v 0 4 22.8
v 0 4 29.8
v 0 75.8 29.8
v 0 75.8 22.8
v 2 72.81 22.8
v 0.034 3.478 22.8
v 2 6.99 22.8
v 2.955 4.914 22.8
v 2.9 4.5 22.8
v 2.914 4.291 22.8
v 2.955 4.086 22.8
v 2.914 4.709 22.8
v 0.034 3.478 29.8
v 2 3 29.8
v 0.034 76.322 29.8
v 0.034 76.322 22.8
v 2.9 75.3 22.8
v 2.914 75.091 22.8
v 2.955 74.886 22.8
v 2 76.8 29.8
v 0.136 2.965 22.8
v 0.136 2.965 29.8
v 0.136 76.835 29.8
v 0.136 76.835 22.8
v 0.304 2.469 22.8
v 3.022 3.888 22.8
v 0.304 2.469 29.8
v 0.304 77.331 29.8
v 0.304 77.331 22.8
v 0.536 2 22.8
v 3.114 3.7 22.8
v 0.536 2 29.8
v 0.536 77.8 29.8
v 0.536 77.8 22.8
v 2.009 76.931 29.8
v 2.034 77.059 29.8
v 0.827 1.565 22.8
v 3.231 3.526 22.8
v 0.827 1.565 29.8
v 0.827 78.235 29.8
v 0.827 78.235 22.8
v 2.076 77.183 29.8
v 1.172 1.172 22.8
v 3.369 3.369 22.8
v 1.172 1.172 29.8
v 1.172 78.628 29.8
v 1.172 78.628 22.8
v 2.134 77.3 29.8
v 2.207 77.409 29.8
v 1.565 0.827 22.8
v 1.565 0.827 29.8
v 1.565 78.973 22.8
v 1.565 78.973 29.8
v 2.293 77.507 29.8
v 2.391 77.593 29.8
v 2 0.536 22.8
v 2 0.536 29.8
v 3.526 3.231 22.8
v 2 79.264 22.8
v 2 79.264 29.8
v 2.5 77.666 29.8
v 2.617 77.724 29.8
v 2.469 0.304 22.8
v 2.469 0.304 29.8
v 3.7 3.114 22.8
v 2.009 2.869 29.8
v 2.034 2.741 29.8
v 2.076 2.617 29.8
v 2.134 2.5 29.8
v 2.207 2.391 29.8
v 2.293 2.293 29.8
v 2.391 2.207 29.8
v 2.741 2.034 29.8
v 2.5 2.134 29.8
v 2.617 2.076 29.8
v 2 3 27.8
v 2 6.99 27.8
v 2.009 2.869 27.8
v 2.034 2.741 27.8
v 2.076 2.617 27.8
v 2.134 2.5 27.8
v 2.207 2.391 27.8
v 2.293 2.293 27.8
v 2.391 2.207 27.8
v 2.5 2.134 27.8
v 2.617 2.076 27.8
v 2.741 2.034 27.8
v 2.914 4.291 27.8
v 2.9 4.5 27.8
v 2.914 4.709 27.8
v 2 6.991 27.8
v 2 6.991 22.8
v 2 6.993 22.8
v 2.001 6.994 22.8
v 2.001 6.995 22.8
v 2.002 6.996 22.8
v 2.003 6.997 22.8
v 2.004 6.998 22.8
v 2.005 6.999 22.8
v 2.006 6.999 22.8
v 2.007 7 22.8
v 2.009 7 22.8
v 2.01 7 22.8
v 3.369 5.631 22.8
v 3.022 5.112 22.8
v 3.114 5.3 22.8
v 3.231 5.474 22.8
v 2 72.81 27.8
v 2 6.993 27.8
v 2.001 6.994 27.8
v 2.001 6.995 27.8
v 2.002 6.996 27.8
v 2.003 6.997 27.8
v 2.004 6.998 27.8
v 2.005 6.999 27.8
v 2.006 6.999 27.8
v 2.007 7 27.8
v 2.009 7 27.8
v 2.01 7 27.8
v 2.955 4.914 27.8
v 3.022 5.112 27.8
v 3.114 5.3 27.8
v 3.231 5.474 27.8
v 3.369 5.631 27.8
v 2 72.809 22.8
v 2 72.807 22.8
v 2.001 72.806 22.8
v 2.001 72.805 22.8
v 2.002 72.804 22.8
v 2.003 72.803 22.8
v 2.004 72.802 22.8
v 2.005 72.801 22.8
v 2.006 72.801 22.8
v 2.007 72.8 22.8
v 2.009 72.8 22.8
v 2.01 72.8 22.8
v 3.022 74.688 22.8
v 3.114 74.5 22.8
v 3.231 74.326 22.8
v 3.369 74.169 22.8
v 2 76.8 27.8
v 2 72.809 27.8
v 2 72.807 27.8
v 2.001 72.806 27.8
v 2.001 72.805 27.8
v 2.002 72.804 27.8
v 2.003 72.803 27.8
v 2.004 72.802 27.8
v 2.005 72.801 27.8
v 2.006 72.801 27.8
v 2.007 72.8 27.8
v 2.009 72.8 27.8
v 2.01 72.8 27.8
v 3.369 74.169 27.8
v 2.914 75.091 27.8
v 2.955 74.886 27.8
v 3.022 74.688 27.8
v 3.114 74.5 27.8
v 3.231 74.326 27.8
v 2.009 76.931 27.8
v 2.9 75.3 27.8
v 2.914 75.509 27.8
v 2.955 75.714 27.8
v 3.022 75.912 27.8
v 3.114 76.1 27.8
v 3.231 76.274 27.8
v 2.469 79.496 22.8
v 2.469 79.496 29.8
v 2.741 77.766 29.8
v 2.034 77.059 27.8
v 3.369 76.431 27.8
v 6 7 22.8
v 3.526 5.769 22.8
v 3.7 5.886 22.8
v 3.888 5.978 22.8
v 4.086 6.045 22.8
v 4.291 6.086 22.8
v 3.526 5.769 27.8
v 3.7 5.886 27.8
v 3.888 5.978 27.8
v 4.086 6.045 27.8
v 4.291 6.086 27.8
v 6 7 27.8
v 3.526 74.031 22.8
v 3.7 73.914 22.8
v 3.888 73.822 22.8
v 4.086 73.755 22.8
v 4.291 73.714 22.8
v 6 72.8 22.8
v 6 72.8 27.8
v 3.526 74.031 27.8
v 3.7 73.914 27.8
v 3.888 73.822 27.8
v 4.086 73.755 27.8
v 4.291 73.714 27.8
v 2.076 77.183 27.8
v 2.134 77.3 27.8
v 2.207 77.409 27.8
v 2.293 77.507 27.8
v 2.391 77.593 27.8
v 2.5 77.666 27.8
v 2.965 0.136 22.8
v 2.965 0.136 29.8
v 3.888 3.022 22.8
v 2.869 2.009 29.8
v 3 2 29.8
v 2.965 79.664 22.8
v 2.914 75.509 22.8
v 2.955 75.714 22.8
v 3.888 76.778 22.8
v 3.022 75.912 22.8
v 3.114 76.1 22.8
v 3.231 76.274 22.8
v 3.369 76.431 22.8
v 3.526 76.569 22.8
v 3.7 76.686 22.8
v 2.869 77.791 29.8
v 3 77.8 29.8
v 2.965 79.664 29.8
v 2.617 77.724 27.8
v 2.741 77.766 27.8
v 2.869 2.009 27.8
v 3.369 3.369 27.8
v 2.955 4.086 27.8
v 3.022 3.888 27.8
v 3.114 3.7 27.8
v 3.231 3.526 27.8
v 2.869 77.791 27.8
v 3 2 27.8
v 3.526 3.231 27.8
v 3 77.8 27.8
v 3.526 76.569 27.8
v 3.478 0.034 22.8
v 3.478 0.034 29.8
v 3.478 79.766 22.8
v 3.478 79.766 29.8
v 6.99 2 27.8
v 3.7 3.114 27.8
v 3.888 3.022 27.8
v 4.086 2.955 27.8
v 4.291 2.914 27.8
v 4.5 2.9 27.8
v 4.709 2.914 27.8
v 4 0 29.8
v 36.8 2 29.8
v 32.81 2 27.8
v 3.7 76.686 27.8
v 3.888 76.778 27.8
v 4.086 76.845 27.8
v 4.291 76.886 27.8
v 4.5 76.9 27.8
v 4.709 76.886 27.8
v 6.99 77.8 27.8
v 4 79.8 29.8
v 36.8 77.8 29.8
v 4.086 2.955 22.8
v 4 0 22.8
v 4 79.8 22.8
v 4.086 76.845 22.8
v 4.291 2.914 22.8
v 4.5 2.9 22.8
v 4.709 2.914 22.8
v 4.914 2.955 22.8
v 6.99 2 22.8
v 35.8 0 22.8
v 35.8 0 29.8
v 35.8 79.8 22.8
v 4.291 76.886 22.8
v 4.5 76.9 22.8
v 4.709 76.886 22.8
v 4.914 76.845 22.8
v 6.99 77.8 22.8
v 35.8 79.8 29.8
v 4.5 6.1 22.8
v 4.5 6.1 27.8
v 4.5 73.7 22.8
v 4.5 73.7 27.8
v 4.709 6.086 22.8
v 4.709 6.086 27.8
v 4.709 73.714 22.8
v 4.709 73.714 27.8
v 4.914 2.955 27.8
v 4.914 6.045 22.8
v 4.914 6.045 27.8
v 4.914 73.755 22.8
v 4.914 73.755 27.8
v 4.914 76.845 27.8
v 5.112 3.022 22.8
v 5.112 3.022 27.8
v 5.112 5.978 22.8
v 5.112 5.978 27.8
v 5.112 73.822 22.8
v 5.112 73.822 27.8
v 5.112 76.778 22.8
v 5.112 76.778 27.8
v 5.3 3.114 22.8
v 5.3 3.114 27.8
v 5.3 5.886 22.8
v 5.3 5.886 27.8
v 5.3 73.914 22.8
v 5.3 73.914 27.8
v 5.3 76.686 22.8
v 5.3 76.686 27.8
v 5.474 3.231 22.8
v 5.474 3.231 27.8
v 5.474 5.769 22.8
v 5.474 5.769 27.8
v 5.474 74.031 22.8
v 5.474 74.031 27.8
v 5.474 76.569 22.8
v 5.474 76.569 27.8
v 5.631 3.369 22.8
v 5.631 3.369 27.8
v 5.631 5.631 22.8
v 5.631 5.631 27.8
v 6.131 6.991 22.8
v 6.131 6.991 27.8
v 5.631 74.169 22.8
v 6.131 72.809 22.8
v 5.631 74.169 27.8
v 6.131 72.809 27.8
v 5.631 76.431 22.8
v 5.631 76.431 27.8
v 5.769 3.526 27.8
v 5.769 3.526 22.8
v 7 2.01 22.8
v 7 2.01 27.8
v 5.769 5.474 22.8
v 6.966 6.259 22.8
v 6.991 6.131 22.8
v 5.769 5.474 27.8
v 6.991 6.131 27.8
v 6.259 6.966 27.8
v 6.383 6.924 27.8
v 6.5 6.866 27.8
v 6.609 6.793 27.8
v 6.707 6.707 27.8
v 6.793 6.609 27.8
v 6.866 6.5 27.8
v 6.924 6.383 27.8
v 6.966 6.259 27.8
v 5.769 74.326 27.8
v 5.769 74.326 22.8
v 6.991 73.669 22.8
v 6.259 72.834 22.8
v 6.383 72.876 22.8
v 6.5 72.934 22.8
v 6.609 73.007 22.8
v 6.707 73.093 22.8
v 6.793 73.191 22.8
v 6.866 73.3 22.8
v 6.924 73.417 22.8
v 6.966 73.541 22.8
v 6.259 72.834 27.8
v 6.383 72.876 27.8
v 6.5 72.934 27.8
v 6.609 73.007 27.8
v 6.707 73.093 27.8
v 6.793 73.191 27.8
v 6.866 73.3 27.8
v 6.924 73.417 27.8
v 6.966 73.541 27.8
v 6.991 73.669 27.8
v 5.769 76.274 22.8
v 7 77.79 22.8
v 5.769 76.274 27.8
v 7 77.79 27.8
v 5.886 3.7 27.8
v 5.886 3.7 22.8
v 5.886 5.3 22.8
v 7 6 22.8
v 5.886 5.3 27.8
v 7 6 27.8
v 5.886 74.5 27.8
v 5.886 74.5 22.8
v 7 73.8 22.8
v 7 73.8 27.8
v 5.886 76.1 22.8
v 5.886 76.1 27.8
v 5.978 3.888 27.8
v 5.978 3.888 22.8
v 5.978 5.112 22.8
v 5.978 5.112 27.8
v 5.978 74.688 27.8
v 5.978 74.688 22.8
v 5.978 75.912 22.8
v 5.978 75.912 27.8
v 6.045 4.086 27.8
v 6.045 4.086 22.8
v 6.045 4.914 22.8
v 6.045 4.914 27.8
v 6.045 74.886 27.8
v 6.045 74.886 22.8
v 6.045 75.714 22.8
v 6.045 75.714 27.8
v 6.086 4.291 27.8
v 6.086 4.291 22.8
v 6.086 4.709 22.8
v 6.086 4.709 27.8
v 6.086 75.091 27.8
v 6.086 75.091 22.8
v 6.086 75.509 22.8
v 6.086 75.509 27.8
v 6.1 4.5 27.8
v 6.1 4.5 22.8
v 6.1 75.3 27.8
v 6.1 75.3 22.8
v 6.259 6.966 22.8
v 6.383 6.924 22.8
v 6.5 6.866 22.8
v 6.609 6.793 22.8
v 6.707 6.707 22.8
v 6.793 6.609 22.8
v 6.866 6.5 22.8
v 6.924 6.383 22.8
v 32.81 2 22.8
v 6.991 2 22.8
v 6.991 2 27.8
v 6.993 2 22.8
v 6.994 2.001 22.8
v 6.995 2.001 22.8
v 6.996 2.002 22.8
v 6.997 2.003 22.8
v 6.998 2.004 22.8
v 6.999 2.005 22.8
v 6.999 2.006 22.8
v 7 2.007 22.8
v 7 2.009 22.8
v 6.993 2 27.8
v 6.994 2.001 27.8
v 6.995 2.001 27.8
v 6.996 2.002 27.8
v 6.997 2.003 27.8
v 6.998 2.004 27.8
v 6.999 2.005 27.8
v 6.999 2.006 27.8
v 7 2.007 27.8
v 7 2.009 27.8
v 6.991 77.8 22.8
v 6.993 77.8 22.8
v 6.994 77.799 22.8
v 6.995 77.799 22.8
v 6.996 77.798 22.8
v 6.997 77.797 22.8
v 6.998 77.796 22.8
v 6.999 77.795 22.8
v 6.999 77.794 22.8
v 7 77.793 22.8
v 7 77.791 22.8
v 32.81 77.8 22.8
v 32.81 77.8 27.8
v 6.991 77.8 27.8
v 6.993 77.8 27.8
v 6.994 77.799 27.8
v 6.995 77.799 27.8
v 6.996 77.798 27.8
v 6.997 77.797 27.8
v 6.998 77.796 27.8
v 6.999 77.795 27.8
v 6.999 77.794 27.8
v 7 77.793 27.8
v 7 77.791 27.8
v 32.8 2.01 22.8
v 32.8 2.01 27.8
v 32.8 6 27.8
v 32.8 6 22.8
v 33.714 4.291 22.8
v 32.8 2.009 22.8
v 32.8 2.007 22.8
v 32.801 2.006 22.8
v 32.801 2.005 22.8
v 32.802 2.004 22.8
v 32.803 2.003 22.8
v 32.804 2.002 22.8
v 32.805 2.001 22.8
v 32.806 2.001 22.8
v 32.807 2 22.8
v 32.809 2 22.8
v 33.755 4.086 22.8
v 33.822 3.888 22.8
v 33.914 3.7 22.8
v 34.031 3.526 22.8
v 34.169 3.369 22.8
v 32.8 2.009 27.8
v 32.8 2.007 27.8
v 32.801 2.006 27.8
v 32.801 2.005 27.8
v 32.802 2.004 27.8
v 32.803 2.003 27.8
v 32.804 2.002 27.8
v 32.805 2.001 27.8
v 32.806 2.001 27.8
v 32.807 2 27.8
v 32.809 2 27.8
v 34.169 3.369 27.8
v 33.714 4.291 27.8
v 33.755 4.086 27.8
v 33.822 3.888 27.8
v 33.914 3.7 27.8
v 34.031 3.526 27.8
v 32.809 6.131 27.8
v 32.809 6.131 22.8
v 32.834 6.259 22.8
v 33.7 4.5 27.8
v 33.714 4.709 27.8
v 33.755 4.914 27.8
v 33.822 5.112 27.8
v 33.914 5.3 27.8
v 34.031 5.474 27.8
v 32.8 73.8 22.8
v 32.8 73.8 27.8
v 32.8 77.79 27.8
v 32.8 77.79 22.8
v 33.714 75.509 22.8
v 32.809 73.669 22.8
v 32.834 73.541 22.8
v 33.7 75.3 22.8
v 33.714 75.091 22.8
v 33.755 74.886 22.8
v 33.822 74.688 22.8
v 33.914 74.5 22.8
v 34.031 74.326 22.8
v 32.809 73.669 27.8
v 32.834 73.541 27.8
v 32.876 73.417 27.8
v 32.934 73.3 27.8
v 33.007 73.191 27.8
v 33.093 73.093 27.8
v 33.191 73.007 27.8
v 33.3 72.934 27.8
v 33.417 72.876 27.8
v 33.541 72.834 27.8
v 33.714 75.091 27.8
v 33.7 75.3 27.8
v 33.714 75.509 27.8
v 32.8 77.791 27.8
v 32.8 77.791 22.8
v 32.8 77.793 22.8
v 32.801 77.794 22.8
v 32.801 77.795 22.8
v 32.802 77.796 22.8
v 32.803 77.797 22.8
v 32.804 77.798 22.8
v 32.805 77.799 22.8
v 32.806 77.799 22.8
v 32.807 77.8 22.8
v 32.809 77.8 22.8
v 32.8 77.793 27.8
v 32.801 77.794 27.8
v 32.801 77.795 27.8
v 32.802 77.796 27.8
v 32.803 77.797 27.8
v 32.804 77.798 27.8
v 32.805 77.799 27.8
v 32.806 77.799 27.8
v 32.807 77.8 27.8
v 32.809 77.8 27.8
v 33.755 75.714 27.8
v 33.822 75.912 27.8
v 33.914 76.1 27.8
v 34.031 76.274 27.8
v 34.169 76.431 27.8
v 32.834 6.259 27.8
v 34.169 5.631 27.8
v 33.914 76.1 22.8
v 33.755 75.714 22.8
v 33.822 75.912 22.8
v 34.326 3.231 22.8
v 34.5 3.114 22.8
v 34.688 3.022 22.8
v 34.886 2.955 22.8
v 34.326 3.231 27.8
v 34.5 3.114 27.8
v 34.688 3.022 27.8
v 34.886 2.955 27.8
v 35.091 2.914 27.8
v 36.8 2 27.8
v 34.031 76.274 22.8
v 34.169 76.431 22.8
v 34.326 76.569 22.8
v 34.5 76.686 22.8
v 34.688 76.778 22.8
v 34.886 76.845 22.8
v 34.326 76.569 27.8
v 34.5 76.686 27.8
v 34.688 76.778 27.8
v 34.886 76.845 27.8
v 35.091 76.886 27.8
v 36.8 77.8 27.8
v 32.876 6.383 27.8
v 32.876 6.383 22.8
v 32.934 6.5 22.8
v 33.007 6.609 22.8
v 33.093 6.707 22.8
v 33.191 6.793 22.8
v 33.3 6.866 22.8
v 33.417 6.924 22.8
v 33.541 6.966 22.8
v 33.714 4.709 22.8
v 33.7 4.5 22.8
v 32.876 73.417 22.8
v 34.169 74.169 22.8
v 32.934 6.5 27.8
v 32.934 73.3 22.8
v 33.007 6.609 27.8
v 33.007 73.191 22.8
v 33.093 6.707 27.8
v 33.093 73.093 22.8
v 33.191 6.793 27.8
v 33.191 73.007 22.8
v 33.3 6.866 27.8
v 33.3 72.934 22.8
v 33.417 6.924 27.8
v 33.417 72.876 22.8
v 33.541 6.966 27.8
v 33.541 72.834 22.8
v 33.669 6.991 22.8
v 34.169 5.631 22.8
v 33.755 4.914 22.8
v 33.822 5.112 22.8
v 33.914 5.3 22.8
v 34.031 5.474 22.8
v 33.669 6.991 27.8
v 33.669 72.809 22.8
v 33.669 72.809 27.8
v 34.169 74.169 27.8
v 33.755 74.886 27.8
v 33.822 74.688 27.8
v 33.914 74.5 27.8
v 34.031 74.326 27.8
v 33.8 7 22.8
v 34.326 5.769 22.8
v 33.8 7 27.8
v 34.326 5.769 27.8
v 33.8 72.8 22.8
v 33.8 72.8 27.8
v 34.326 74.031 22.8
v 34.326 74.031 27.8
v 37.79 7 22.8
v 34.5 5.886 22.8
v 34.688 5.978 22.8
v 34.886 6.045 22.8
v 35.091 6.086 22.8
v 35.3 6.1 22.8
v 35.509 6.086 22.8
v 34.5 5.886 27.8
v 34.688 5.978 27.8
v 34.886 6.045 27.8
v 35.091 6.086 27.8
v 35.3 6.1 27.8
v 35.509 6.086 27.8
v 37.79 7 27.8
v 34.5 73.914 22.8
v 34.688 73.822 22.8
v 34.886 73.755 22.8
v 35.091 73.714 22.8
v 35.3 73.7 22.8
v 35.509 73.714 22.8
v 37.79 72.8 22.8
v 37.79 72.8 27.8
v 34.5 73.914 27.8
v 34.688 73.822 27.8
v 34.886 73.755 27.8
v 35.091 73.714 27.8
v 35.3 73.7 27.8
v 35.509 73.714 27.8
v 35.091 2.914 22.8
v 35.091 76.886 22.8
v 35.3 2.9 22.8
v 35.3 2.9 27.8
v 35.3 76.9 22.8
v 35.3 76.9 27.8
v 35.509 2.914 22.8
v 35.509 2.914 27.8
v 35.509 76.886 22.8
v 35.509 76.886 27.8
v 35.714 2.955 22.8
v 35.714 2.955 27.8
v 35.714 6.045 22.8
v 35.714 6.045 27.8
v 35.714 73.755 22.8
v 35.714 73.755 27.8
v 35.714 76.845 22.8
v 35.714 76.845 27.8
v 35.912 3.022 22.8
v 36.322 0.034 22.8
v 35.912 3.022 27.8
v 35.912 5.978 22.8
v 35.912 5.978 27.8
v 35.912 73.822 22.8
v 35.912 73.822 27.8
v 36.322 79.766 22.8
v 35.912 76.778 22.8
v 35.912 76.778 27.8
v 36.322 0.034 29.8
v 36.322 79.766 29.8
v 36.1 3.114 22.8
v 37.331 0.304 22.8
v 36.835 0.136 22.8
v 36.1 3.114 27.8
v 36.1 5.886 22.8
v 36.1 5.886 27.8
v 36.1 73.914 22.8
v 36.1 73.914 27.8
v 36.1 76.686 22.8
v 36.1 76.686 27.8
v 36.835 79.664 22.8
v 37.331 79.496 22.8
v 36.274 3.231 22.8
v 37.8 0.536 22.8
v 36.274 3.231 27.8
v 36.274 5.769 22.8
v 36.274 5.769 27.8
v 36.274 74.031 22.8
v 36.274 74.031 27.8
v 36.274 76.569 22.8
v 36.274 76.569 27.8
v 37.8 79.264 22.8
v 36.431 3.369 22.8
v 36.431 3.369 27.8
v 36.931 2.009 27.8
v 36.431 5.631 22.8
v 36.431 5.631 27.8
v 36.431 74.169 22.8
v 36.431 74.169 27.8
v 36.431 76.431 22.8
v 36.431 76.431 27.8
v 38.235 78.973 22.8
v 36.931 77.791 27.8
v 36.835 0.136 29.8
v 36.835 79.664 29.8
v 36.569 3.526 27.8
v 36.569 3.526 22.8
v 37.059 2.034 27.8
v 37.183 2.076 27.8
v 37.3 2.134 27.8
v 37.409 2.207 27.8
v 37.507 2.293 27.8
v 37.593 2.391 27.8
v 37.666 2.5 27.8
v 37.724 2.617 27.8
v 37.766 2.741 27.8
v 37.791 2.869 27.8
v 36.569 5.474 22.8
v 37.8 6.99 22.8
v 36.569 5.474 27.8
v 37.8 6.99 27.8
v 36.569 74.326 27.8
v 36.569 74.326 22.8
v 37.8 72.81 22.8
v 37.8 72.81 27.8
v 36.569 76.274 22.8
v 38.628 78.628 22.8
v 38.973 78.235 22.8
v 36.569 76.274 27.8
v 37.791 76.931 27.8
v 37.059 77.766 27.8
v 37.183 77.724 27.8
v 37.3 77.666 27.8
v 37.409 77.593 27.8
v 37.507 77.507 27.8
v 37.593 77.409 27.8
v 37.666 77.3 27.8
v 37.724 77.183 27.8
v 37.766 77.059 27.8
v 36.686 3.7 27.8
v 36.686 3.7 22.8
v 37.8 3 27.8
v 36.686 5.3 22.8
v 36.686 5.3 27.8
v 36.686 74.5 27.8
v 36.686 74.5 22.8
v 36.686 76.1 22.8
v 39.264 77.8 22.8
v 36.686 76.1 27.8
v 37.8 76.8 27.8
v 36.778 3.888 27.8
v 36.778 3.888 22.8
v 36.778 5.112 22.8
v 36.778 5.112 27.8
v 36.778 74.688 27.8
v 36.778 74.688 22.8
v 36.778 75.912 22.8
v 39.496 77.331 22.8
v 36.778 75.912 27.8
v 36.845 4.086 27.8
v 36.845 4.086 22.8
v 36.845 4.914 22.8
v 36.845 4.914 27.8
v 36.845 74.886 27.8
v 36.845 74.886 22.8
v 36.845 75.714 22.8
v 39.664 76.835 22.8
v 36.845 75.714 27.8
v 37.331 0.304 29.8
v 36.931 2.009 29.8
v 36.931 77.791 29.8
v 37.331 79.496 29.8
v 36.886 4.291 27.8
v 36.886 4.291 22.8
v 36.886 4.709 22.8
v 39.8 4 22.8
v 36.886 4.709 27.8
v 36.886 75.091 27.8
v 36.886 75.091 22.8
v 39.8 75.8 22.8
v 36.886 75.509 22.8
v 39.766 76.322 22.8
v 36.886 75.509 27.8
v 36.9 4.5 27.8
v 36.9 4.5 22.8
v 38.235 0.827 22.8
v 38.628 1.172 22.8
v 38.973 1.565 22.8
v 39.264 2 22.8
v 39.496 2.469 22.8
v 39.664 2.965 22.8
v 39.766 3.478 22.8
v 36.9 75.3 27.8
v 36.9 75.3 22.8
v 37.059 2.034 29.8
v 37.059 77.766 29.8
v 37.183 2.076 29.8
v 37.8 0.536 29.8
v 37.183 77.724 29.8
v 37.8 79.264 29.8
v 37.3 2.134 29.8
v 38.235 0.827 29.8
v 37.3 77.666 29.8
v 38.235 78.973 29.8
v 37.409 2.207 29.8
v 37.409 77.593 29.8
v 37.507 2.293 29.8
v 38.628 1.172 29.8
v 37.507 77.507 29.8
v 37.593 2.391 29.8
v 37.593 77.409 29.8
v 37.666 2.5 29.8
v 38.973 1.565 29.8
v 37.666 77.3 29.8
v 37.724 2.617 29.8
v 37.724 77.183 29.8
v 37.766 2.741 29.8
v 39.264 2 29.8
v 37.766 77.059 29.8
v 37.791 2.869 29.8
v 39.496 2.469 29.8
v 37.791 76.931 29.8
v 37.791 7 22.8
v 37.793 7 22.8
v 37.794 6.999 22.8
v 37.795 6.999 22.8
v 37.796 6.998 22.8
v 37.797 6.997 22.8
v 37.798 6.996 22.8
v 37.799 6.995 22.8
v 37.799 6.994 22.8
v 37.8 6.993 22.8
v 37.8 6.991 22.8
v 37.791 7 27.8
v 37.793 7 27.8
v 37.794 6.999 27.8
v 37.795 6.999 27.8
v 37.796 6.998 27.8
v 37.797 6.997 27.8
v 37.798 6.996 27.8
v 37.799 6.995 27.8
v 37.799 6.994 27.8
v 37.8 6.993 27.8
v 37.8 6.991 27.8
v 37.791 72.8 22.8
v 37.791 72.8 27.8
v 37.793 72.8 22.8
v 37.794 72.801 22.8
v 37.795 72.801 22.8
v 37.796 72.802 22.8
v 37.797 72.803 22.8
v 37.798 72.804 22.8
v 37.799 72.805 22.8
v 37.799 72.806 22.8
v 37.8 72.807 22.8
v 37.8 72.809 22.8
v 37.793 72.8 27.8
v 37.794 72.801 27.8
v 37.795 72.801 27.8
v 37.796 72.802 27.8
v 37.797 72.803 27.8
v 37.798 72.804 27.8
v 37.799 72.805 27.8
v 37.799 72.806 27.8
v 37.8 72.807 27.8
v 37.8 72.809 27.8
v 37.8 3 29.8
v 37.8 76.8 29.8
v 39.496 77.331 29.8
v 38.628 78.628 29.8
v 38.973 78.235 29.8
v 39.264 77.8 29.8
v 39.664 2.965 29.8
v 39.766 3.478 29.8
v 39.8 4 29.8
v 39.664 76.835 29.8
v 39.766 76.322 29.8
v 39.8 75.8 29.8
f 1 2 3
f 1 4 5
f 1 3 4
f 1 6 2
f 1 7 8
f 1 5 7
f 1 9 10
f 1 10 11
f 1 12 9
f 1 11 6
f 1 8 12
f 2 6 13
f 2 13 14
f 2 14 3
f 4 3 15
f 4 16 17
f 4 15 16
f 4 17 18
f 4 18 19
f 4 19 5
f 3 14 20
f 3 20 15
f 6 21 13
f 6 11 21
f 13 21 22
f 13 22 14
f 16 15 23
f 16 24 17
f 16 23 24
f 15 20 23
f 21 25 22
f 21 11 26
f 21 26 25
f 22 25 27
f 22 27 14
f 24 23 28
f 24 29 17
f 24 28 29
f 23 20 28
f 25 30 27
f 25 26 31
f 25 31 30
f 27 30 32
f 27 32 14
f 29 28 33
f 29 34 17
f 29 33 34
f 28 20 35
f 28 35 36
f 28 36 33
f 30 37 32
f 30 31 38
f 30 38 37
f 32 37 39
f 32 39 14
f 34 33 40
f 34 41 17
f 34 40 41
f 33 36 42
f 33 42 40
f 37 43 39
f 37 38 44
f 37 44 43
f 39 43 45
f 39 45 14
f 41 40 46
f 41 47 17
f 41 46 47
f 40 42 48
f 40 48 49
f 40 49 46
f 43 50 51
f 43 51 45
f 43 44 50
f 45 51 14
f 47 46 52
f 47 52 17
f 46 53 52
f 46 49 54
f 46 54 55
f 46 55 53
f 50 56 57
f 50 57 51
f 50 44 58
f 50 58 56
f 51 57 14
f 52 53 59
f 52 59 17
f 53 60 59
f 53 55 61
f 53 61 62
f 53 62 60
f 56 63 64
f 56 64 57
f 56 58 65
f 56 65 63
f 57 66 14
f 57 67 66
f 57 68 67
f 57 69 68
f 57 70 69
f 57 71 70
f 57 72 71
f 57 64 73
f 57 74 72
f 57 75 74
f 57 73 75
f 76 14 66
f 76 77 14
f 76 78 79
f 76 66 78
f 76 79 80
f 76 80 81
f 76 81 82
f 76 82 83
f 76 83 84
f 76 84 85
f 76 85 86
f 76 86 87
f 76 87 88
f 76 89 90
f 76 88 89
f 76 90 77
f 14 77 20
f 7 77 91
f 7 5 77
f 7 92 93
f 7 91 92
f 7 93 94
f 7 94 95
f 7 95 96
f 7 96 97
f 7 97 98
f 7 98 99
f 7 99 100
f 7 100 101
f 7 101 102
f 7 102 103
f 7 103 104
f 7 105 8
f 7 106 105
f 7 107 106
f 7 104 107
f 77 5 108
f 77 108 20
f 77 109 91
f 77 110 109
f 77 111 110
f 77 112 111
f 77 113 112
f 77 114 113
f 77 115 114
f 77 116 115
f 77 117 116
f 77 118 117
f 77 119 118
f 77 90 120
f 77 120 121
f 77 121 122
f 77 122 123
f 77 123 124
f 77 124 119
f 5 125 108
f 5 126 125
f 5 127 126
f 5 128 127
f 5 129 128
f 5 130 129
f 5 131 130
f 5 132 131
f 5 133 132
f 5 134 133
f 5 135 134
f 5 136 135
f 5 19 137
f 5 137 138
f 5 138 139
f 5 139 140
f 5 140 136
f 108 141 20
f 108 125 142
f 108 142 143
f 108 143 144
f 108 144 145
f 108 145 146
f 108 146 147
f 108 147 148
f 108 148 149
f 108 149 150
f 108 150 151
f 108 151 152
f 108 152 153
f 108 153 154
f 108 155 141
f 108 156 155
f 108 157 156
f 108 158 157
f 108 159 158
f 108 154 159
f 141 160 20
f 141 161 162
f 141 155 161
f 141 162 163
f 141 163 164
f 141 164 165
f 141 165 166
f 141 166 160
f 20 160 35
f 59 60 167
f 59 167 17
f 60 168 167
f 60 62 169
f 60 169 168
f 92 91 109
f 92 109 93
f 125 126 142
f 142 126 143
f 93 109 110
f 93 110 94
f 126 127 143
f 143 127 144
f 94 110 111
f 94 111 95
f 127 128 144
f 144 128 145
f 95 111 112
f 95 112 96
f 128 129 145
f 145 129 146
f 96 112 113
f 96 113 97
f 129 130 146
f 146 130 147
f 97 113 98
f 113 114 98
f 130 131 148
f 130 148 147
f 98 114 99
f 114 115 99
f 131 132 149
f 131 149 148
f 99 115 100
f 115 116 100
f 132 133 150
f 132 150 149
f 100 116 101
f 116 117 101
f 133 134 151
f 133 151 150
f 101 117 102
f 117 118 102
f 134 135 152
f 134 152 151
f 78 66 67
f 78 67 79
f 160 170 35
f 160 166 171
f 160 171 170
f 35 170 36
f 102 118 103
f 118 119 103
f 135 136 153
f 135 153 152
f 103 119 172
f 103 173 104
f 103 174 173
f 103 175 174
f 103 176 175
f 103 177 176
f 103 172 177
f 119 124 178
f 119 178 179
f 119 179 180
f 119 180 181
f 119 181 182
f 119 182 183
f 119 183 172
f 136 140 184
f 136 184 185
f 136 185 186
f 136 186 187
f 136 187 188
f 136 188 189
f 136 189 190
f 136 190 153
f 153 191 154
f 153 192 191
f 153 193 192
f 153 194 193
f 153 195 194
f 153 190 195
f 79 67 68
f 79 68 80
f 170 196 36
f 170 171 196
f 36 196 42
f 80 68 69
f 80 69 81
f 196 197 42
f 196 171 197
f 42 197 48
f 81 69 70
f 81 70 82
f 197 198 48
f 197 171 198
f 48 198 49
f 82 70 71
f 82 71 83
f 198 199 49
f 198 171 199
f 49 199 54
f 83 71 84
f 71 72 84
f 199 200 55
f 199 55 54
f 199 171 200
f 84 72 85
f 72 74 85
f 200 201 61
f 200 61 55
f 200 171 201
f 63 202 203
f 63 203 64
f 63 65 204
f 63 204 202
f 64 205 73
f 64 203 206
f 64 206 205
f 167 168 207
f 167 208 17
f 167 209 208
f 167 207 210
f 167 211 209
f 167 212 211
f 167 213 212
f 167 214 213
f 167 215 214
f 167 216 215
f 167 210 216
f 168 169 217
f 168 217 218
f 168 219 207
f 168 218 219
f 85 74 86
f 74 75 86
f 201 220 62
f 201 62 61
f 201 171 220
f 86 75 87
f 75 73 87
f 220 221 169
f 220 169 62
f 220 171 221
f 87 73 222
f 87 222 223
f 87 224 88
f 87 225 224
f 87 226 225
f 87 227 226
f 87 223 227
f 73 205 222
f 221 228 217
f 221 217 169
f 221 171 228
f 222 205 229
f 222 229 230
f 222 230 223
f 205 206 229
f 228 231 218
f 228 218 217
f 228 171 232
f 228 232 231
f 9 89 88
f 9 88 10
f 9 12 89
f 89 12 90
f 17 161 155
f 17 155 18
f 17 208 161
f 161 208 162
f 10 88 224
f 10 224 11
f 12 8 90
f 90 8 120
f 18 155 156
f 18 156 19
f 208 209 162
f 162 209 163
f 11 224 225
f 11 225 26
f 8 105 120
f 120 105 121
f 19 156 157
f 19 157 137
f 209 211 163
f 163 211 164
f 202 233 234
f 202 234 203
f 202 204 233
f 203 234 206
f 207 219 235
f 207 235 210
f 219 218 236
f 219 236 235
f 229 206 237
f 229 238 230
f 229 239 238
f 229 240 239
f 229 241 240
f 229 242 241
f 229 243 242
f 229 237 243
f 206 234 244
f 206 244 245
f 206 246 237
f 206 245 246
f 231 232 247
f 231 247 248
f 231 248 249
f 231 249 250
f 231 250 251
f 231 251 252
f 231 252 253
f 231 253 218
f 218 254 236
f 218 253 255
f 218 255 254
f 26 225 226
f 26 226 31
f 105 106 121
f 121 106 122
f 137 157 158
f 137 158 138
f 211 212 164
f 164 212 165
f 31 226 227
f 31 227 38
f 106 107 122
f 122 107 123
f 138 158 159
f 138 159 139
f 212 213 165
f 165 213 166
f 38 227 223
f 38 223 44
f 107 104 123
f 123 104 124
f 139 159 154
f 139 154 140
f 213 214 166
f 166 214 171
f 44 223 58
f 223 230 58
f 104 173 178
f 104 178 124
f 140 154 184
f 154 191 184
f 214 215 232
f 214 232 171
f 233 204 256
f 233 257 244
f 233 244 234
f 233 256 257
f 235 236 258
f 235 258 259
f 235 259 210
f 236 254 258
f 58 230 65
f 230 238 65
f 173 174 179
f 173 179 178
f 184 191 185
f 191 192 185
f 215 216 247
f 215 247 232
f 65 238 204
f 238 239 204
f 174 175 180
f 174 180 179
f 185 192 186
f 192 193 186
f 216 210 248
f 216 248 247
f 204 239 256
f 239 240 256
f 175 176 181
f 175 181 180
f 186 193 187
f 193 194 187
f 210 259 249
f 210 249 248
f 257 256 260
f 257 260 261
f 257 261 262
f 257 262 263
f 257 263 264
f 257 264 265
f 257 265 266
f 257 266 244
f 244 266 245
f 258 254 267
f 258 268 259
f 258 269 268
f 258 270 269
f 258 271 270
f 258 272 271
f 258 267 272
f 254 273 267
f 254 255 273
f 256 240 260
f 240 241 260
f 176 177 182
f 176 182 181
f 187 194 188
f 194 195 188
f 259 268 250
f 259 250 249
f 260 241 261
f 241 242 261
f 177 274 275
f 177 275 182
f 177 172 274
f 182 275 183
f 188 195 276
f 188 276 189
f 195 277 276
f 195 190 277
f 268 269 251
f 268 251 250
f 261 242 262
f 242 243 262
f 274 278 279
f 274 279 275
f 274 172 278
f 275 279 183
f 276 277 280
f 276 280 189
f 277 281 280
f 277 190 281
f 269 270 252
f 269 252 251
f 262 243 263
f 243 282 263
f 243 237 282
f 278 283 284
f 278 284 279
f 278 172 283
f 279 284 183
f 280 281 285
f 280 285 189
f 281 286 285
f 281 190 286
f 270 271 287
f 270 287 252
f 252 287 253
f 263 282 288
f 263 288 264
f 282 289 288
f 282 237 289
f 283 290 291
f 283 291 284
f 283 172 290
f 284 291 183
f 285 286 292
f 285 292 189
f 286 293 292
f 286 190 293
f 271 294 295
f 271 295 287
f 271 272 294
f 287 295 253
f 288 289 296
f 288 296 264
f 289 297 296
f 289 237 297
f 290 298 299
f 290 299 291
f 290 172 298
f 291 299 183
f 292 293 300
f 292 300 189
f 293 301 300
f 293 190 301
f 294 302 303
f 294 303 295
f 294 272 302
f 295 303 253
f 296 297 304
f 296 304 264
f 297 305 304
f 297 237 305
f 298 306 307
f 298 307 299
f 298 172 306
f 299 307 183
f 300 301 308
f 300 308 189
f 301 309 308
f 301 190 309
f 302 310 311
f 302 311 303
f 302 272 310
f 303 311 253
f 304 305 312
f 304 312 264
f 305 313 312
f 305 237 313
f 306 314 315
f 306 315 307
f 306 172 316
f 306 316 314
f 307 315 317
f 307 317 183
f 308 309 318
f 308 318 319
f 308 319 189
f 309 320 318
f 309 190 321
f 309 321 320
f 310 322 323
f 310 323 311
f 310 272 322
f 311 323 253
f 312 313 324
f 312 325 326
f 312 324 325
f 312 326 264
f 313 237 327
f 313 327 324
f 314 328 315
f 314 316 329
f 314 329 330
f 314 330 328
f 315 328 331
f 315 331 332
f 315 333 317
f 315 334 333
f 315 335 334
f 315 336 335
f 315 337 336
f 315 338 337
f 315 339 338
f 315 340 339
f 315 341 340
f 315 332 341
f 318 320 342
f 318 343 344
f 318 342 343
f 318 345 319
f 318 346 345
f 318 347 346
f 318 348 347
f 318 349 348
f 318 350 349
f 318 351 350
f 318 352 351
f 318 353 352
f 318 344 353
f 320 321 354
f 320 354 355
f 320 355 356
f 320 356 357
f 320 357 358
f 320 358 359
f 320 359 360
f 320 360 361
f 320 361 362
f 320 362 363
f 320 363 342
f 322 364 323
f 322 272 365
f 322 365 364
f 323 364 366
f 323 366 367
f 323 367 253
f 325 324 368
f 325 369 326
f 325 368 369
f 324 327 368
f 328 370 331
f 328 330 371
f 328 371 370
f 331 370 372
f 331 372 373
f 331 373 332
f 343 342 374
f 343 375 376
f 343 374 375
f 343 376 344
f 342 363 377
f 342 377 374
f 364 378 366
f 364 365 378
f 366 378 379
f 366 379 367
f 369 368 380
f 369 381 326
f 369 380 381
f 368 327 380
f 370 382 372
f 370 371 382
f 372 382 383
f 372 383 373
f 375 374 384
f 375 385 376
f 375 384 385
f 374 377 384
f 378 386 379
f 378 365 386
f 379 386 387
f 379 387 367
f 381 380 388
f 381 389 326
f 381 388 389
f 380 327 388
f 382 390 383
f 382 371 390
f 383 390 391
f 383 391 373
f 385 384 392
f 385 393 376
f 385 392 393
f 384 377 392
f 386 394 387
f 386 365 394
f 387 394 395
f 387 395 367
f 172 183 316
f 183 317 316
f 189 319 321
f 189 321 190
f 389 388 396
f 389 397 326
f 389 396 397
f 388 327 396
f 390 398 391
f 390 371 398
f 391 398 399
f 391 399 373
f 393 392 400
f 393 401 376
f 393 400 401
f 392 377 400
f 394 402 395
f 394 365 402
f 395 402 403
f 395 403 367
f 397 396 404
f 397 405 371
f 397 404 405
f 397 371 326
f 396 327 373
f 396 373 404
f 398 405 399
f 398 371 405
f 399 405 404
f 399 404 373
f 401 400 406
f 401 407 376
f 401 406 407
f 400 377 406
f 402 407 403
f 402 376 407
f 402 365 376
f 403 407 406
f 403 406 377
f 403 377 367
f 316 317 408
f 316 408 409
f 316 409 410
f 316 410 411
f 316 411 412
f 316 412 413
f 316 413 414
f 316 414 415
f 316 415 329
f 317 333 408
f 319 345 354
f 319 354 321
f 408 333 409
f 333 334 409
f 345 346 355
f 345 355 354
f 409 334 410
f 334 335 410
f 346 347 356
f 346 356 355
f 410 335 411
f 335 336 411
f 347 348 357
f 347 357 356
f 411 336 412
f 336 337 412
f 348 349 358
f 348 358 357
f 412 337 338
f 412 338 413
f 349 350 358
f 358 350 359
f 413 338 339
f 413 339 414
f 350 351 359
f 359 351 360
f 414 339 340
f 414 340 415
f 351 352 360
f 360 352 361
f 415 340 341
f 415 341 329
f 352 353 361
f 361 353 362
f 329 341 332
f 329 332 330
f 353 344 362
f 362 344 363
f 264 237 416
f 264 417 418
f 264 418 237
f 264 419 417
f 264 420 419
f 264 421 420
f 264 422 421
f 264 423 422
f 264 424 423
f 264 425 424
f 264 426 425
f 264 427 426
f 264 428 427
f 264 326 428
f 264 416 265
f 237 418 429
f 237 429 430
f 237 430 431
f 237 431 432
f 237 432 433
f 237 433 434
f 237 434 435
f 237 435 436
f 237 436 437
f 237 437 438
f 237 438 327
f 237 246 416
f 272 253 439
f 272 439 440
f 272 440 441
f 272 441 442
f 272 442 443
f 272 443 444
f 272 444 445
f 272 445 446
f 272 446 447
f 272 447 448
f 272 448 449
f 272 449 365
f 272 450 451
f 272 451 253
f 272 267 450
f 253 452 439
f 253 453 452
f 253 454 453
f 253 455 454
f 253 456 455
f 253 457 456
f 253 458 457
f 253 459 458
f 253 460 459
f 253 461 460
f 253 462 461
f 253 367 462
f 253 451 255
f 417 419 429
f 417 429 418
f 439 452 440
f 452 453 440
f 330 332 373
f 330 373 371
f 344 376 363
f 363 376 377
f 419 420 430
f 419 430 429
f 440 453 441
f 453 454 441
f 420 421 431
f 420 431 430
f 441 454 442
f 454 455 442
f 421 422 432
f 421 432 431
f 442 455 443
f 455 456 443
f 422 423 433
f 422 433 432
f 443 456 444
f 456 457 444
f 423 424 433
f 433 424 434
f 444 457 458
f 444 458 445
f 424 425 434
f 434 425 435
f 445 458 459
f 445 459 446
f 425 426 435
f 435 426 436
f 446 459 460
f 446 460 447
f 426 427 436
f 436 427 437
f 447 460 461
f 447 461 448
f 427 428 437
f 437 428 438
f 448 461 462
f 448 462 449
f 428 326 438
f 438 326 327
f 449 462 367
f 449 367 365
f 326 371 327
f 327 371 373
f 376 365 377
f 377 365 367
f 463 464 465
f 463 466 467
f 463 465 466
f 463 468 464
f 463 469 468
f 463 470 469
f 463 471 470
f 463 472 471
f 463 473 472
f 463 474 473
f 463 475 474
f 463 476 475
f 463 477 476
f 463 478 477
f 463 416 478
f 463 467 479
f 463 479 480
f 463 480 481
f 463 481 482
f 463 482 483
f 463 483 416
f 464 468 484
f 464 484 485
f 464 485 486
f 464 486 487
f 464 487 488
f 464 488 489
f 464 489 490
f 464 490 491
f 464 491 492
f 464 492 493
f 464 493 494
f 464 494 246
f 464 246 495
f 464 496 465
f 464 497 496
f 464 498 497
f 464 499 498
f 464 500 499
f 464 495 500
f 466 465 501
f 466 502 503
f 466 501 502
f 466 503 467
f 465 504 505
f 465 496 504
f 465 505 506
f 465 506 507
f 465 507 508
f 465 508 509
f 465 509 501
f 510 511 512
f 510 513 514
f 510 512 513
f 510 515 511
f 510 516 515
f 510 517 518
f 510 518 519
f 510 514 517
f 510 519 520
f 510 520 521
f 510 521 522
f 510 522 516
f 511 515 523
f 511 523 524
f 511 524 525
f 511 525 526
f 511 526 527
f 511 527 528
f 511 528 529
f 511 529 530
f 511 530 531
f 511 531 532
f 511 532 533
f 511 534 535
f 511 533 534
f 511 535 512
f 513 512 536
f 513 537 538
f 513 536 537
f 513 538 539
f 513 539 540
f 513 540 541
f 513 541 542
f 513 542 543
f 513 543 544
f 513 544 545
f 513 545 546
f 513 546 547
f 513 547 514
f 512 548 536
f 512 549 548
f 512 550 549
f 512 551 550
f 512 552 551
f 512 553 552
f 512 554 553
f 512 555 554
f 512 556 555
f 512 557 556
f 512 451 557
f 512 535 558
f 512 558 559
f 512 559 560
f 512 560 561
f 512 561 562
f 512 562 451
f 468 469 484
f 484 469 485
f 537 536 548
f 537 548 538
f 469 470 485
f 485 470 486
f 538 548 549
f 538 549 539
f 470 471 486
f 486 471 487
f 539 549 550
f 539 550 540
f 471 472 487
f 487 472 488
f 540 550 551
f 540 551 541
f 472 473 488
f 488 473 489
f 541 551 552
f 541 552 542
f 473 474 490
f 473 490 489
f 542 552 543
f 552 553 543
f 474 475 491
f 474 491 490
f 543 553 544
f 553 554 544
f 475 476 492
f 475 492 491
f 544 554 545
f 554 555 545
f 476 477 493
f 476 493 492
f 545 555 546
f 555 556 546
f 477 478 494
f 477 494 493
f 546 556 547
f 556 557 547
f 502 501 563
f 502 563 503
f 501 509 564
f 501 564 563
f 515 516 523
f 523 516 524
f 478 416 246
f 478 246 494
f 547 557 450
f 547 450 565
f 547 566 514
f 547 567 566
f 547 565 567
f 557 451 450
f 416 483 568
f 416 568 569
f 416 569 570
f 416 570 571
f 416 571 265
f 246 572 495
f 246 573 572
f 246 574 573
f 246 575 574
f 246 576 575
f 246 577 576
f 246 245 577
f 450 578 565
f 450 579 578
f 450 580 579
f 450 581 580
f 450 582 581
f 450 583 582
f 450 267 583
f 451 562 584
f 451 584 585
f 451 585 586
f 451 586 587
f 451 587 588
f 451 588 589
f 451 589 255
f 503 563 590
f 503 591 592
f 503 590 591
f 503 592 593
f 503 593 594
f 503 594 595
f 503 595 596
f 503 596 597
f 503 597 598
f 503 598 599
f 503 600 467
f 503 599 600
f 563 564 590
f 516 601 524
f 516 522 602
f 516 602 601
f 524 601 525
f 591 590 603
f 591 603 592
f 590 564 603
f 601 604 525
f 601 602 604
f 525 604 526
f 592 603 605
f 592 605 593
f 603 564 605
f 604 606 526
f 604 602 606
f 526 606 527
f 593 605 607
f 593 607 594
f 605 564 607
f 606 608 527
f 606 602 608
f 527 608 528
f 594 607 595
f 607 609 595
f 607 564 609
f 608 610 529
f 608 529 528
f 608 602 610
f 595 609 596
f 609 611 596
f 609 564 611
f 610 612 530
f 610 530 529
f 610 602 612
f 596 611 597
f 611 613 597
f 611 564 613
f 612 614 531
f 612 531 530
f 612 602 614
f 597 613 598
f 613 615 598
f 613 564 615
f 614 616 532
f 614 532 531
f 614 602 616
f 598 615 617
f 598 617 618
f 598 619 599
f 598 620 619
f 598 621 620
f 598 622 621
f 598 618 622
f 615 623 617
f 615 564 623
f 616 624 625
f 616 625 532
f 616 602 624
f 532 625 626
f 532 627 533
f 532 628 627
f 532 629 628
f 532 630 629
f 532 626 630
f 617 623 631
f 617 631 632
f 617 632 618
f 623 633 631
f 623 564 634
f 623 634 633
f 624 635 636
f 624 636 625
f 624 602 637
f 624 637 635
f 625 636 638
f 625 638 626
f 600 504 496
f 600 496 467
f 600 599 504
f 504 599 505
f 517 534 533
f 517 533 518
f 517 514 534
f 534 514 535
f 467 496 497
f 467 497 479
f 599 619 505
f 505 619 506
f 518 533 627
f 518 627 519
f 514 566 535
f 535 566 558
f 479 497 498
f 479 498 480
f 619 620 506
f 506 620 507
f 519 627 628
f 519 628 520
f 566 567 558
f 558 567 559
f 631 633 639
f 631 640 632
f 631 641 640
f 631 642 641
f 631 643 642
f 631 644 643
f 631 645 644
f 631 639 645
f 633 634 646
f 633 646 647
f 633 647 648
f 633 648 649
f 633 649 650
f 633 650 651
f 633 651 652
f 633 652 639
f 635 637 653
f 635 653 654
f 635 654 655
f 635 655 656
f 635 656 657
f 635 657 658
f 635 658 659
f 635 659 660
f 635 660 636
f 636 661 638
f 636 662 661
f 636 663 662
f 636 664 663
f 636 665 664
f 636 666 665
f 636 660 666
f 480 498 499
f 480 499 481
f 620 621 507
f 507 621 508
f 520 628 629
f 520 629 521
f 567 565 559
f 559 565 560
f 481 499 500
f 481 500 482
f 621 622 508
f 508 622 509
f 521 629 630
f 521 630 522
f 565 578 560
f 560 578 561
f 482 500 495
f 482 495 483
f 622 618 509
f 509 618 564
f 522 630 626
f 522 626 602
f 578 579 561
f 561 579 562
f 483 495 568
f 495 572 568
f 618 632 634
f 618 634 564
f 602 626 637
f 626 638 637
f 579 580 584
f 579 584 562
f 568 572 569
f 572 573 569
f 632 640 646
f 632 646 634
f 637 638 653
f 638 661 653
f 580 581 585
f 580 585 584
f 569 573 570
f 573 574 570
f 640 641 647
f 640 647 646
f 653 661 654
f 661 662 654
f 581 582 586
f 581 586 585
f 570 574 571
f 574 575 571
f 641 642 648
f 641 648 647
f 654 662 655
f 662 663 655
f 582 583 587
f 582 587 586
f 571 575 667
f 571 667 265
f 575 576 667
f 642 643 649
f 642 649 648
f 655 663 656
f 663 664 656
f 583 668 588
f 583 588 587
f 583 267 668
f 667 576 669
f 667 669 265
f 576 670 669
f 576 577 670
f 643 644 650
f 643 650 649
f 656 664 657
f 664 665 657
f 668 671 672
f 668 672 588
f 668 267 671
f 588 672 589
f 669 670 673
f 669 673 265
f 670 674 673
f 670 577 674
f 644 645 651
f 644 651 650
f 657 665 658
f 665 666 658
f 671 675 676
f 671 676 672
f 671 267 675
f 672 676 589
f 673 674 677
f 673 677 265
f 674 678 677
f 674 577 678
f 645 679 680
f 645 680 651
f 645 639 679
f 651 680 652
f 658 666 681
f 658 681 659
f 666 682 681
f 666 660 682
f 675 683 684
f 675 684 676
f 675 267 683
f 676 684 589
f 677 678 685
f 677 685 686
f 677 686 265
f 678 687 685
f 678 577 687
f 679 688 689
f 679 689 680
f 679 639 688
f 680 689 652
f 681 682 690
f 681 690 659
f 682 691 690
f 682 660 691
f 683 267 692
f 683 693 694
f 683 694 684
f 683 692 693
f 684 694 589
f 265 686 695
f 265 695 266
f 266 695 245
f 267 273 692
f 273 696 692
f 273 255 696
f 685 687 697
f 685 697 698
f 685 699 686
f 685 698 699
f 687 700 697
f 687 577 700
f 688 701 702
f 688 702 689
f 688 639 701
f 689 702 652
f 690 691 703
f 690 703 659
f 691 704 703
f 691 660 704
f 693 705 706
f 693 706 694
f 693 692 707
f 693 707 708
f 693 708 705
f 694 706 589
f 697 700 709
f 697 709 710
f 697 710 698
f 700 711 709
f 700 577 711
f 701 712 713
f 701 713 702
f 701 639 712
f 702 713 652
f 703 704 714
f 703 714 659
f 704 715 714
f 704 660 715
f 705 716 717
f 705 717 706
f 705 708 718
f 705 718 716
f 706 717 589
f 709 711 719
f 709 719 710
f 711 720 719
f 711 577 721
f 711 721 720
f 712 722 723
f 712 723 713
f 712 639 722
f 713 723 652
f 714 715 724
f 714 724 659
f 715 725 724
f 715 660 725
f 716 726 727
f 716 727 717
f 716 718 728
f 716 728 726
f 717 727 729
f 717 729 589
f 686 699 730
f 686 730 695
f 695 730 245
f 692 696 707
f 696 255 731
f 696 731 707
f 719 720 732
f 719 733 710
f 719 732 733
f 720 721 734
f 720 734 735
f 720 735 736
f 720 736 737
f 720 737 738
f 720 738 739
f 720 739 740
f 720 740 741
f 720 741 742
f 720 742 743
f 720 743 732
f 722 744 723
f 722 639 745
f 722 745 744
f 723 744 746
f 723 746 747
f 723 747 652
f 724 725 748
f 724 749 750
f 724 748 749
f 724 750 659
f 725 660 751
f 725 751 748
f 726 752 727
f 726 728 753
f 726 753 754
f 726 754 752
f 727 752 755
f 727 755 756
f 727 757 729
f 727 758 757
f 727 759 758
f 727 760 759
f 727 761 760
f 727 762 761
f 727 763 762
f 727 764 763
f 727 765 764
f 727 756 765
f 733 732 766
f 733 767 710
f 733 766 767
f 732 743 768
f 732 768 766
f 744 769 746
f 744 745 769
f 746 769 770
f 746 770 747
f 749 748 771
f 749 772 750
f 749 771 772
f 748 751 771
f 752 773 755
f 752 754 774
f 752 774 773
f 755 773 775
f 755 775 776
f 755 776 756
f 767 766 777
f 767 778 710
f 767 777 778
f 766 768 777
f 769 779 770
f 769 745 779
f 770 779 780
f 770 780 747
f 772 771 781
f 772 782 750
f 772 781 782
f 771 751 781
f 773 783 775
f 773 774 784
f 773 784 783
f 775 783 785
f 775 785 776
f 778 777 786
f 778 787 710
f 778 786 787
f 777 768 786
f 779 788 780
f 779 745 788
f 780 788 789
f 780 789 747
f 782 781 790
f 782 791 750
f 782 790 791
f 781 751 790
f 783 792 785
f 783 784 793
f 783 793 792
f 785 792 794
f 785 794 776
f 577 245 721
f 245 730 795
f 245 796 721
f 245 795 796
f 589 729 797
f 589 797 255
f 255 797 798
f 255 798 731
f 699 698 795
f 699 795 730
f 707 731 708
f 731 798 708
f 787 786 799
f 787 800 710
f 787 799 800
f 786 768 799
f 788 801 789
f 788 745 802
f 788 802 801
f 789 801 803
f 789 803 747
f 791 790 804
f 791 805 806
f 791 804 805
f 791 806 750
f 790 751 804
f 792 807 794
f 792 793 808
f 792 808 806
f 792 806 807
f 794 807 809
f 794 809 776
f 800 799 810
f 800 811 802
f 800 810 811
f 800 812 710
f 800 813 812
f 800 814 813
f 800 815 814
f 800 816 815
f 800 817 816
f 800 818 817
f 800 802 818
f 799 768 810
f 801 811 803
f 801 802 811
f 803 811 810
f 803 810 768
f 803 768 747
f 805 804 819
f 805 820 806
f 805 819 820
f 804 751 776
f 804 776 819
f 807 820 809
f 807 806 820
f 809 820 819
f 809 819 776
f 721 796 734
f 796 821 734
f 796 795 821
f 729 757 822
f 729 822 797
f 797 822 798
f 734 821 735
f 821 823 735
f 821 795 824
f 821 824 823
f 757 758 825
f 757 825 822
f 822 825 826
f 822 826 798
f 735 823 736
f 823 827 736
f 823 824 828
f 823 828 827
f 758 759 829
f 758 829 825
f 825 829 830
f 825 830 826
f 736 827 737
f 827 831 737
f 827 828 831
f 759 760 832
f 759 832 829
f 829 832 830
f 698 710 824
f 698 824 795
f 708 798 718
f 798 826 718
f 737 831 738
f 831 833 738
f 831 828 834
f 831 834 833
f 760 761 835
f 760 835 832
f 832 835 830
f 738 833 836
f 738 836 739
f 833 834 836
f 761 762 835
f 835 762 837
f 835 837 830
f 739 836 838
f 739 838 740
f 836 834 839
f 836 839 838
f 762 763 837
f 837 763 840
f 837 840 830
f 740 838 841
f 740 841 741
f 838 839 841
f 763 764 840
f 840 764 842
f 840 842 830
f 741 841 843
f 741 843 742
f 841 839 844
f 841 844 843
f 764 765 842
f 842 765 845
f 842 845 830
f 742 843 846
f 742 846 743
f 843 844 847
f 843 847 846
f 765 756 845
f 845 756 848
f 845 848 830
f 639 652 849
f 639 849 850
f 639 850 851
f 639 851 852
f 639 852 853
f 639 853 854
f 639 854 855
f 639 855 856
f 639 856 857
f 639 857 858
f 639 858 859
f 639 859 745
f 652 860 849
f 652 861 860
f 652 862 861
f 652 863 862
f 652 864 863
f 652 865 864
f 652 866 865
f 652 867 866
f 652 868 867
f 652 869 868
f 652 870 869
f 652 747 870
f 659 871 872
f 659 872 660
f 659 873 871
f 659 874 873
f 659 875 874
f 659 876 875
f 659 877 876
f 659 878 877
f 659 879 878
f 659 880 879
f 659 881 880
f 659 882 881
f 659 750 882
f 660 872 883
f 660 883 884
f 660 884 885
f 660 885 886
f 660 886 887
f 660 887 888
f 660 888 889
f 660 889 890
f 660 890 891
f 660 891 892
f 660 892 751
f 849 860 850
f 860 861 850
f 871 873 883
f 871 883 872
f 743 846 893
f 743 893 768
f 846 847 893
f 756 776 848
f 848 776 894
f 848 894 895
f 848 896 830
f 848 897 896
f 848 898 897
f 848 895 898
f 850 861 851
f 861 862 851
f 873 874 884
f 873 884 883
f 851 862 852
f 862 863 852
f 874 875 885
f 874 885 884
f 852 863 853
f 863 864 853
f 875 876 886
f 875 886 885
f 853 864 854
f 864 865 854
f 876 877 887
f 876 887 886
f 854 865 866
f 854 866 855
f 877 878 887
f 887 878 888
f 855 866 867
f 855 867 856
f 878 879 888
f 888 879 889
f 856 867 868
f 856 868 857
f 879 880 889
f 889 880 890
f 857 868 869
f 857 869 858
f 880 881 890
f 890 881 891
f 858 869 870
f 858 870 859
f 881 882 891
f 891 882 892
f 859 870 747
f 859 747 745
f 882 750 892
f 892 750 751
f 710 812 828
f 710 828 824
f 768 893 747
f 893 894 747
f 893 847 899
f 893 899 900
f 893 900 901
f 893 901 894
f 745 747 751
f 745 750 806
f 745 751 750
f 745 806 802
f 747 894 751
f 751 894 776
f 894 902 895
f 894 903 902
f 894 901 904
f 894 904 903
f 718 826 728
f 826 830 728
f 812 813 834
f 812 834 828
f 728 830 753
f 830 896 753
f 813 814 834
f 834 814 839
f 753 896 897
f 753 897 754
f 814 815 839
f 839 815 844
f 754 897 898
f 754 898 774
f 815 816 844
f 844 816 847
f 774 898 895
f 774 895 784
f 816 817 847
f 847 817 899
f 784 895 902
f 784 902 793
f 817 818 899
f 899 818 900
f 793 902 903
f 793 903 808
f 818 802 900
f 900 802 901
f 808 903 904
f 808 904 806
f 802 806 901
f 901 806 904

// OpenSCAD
// Dilder Top Cover v3 — open border frame with rounded inner corners for flush plate seating
//
// No dome, no floor — just the perimeter wall ring + 4 corner pillar posts.
// Solid border all around (no wire notch).
// Inner corners and countersink pocket are rounded to match the windowed plate's corner radius,
// allowing it to slide in flush at the pillar junctions.
//
// Export:
//   openscad -o top-cover-v3.3mf top-cover-v3.scad

$fn = 48;

// ---- Board (Olimex ESP32-S3-DevKit-Lipo) ----
board_len      = 56;
board_wid      = 28;
antenna_proj   = 6;

// ---- Waveshare 2.13" display ----
disp_len       = 65;
disp_wid       = 30;
disp_thk       = 5;

// ---- 1000 mAh battery ----
bat_len        = 52;
bat_wid        = 35;

// ---- Enclosure geometry ----
wall_thk       = 2;
plate_thk      = 2;
pillar         = 5;
slop           = 0.4;
bat_chamber_h  = 6;
disp_clear     = 1;
board_thk      = 1.6;
wroom_h        = 3.2;
top_gap        = 5;

screw_clr      = 3.2;

// ---- Rounding ----
case_corner_r  = 4;
plate_corner_r = 1;       // must match windowed plate's corner radius

// ---- Z layout ----
z_base_top     = plate_thk;
z_mid_bot      = z_base_top + bat_chamber_h;
z_mid_top      = z_mid_bot + plate_thk;
z_board_bot    = z_mid_top;
z_board_top    = z_board_bot + board_thk;
z_wroom_top    = z_board_top + wroom_h;
z_disp_bot     = z_wroom_top + disp_clear;
z_disp_top     = z_disp_bot + disp_thk;
base_wall_top  = z_disp_top + plate_thk;
z_cover_bot    = base_wall_top;
cover_h        = plate_thk + top_gap;

// ---- XY layout ----
inner_wid      = max(board_wid, disp_wid, bat_wid) + 2 * slop;
inner_len      = max(board_len + antenna_proj, disp_len + 2 * pillar, bat_len) + 2 * slop;
outer_wid      = inner_wid + 2 * wall_thk;
outer_len      = inner_len + 2 * wall_thk;

pillar_xy = [
    [wall_thk,                             wall_thk                            ],
    [outer_wid - wall_thk - pillar,        wall_thk                            ],
    [wall_thk,                             outer_len - wall_thk - pillar       ],
    [outer_wid - wall_thk - pillar,        outer_len - wall_thk - pillar       ],
];


// ============== SHARED ==============

module rounded_v_box(w, l, h, r, fn = 48) {
    hull() {
        for (x = [r, w - r])
            for (y = [r, l - r])
                translate([x, y, 0])
                    cylinder(r = r, h = h, $fn = fn);
    }
}

// Pillar with only one corner rounded (the exposed inner corner).
// round_x/round_y: 0=near edge, 1=far edge — selects which corner gets the radius.
module pillar_one_round(w, l, h, r, round_x, round_y) {
    tiny = 0.01;
    hull() {
        for (ix = [0, 1])
            for (iy = [0, 1]) {
                cr = (ix == round_x && iy == round_y) ? r : tiny;
                translate([cr + ix * (w - 2*cr), cr + iy * (l - 2*cr), 0])
                    cylinder(r = cr, h = h, $fn = 48);
            }
    }
}


// ============== TOP COVER v3 ==============

module top_cover() {
    translate([0, 0, z_cover_bot])
    difference() {
        union() {
            // Outer wall ring — rounded outer edges, rounded inner edges
            difference() {
                rounded_v_box(outer_wid, outer_len, cover_h, case_corner_r);
                translate([wall_thk, wall_thk, -0.1])
                    rounded_v_box(inner_wid, inner_len, cover_h + 0.2, plate_corner_r);
            }

            // Pillar posts — only the exposed inner corner is rounded
            for (p = pillar_xy) {
                rx = (p[0] < outer_wid/2) ? 1 : 0;
                ry = (p[1] < outer_len/2) ? 1 : 0;
                translate([p[0], p[1], 0])
                    pillar_one_round(pillar, pillar, cover_h, plate_corner_r, rx, ry);
            }
        }

        // Countersink — single rounded pocket matching plate footprint
        // Cuts into pillar tops with rounded inner corners so plate seats flush
        translate([wall_thk, wall_thk, cover_h - plate_thk])
            rounded_v_box(inner_wid, inner_len, plate_thk + 0.1, plate_corner_r);

        // Screw clearance holes through pillars
        for (p = pillar_xy) {
            cx = p[0] + pillar/2;
            cy = p[1] + pillar/2;
            translate([cx, cy, -0.1])
                cylinder(h = cover_h + 0.2, d = screw_clr);
        }
    }
}

top_cover();
